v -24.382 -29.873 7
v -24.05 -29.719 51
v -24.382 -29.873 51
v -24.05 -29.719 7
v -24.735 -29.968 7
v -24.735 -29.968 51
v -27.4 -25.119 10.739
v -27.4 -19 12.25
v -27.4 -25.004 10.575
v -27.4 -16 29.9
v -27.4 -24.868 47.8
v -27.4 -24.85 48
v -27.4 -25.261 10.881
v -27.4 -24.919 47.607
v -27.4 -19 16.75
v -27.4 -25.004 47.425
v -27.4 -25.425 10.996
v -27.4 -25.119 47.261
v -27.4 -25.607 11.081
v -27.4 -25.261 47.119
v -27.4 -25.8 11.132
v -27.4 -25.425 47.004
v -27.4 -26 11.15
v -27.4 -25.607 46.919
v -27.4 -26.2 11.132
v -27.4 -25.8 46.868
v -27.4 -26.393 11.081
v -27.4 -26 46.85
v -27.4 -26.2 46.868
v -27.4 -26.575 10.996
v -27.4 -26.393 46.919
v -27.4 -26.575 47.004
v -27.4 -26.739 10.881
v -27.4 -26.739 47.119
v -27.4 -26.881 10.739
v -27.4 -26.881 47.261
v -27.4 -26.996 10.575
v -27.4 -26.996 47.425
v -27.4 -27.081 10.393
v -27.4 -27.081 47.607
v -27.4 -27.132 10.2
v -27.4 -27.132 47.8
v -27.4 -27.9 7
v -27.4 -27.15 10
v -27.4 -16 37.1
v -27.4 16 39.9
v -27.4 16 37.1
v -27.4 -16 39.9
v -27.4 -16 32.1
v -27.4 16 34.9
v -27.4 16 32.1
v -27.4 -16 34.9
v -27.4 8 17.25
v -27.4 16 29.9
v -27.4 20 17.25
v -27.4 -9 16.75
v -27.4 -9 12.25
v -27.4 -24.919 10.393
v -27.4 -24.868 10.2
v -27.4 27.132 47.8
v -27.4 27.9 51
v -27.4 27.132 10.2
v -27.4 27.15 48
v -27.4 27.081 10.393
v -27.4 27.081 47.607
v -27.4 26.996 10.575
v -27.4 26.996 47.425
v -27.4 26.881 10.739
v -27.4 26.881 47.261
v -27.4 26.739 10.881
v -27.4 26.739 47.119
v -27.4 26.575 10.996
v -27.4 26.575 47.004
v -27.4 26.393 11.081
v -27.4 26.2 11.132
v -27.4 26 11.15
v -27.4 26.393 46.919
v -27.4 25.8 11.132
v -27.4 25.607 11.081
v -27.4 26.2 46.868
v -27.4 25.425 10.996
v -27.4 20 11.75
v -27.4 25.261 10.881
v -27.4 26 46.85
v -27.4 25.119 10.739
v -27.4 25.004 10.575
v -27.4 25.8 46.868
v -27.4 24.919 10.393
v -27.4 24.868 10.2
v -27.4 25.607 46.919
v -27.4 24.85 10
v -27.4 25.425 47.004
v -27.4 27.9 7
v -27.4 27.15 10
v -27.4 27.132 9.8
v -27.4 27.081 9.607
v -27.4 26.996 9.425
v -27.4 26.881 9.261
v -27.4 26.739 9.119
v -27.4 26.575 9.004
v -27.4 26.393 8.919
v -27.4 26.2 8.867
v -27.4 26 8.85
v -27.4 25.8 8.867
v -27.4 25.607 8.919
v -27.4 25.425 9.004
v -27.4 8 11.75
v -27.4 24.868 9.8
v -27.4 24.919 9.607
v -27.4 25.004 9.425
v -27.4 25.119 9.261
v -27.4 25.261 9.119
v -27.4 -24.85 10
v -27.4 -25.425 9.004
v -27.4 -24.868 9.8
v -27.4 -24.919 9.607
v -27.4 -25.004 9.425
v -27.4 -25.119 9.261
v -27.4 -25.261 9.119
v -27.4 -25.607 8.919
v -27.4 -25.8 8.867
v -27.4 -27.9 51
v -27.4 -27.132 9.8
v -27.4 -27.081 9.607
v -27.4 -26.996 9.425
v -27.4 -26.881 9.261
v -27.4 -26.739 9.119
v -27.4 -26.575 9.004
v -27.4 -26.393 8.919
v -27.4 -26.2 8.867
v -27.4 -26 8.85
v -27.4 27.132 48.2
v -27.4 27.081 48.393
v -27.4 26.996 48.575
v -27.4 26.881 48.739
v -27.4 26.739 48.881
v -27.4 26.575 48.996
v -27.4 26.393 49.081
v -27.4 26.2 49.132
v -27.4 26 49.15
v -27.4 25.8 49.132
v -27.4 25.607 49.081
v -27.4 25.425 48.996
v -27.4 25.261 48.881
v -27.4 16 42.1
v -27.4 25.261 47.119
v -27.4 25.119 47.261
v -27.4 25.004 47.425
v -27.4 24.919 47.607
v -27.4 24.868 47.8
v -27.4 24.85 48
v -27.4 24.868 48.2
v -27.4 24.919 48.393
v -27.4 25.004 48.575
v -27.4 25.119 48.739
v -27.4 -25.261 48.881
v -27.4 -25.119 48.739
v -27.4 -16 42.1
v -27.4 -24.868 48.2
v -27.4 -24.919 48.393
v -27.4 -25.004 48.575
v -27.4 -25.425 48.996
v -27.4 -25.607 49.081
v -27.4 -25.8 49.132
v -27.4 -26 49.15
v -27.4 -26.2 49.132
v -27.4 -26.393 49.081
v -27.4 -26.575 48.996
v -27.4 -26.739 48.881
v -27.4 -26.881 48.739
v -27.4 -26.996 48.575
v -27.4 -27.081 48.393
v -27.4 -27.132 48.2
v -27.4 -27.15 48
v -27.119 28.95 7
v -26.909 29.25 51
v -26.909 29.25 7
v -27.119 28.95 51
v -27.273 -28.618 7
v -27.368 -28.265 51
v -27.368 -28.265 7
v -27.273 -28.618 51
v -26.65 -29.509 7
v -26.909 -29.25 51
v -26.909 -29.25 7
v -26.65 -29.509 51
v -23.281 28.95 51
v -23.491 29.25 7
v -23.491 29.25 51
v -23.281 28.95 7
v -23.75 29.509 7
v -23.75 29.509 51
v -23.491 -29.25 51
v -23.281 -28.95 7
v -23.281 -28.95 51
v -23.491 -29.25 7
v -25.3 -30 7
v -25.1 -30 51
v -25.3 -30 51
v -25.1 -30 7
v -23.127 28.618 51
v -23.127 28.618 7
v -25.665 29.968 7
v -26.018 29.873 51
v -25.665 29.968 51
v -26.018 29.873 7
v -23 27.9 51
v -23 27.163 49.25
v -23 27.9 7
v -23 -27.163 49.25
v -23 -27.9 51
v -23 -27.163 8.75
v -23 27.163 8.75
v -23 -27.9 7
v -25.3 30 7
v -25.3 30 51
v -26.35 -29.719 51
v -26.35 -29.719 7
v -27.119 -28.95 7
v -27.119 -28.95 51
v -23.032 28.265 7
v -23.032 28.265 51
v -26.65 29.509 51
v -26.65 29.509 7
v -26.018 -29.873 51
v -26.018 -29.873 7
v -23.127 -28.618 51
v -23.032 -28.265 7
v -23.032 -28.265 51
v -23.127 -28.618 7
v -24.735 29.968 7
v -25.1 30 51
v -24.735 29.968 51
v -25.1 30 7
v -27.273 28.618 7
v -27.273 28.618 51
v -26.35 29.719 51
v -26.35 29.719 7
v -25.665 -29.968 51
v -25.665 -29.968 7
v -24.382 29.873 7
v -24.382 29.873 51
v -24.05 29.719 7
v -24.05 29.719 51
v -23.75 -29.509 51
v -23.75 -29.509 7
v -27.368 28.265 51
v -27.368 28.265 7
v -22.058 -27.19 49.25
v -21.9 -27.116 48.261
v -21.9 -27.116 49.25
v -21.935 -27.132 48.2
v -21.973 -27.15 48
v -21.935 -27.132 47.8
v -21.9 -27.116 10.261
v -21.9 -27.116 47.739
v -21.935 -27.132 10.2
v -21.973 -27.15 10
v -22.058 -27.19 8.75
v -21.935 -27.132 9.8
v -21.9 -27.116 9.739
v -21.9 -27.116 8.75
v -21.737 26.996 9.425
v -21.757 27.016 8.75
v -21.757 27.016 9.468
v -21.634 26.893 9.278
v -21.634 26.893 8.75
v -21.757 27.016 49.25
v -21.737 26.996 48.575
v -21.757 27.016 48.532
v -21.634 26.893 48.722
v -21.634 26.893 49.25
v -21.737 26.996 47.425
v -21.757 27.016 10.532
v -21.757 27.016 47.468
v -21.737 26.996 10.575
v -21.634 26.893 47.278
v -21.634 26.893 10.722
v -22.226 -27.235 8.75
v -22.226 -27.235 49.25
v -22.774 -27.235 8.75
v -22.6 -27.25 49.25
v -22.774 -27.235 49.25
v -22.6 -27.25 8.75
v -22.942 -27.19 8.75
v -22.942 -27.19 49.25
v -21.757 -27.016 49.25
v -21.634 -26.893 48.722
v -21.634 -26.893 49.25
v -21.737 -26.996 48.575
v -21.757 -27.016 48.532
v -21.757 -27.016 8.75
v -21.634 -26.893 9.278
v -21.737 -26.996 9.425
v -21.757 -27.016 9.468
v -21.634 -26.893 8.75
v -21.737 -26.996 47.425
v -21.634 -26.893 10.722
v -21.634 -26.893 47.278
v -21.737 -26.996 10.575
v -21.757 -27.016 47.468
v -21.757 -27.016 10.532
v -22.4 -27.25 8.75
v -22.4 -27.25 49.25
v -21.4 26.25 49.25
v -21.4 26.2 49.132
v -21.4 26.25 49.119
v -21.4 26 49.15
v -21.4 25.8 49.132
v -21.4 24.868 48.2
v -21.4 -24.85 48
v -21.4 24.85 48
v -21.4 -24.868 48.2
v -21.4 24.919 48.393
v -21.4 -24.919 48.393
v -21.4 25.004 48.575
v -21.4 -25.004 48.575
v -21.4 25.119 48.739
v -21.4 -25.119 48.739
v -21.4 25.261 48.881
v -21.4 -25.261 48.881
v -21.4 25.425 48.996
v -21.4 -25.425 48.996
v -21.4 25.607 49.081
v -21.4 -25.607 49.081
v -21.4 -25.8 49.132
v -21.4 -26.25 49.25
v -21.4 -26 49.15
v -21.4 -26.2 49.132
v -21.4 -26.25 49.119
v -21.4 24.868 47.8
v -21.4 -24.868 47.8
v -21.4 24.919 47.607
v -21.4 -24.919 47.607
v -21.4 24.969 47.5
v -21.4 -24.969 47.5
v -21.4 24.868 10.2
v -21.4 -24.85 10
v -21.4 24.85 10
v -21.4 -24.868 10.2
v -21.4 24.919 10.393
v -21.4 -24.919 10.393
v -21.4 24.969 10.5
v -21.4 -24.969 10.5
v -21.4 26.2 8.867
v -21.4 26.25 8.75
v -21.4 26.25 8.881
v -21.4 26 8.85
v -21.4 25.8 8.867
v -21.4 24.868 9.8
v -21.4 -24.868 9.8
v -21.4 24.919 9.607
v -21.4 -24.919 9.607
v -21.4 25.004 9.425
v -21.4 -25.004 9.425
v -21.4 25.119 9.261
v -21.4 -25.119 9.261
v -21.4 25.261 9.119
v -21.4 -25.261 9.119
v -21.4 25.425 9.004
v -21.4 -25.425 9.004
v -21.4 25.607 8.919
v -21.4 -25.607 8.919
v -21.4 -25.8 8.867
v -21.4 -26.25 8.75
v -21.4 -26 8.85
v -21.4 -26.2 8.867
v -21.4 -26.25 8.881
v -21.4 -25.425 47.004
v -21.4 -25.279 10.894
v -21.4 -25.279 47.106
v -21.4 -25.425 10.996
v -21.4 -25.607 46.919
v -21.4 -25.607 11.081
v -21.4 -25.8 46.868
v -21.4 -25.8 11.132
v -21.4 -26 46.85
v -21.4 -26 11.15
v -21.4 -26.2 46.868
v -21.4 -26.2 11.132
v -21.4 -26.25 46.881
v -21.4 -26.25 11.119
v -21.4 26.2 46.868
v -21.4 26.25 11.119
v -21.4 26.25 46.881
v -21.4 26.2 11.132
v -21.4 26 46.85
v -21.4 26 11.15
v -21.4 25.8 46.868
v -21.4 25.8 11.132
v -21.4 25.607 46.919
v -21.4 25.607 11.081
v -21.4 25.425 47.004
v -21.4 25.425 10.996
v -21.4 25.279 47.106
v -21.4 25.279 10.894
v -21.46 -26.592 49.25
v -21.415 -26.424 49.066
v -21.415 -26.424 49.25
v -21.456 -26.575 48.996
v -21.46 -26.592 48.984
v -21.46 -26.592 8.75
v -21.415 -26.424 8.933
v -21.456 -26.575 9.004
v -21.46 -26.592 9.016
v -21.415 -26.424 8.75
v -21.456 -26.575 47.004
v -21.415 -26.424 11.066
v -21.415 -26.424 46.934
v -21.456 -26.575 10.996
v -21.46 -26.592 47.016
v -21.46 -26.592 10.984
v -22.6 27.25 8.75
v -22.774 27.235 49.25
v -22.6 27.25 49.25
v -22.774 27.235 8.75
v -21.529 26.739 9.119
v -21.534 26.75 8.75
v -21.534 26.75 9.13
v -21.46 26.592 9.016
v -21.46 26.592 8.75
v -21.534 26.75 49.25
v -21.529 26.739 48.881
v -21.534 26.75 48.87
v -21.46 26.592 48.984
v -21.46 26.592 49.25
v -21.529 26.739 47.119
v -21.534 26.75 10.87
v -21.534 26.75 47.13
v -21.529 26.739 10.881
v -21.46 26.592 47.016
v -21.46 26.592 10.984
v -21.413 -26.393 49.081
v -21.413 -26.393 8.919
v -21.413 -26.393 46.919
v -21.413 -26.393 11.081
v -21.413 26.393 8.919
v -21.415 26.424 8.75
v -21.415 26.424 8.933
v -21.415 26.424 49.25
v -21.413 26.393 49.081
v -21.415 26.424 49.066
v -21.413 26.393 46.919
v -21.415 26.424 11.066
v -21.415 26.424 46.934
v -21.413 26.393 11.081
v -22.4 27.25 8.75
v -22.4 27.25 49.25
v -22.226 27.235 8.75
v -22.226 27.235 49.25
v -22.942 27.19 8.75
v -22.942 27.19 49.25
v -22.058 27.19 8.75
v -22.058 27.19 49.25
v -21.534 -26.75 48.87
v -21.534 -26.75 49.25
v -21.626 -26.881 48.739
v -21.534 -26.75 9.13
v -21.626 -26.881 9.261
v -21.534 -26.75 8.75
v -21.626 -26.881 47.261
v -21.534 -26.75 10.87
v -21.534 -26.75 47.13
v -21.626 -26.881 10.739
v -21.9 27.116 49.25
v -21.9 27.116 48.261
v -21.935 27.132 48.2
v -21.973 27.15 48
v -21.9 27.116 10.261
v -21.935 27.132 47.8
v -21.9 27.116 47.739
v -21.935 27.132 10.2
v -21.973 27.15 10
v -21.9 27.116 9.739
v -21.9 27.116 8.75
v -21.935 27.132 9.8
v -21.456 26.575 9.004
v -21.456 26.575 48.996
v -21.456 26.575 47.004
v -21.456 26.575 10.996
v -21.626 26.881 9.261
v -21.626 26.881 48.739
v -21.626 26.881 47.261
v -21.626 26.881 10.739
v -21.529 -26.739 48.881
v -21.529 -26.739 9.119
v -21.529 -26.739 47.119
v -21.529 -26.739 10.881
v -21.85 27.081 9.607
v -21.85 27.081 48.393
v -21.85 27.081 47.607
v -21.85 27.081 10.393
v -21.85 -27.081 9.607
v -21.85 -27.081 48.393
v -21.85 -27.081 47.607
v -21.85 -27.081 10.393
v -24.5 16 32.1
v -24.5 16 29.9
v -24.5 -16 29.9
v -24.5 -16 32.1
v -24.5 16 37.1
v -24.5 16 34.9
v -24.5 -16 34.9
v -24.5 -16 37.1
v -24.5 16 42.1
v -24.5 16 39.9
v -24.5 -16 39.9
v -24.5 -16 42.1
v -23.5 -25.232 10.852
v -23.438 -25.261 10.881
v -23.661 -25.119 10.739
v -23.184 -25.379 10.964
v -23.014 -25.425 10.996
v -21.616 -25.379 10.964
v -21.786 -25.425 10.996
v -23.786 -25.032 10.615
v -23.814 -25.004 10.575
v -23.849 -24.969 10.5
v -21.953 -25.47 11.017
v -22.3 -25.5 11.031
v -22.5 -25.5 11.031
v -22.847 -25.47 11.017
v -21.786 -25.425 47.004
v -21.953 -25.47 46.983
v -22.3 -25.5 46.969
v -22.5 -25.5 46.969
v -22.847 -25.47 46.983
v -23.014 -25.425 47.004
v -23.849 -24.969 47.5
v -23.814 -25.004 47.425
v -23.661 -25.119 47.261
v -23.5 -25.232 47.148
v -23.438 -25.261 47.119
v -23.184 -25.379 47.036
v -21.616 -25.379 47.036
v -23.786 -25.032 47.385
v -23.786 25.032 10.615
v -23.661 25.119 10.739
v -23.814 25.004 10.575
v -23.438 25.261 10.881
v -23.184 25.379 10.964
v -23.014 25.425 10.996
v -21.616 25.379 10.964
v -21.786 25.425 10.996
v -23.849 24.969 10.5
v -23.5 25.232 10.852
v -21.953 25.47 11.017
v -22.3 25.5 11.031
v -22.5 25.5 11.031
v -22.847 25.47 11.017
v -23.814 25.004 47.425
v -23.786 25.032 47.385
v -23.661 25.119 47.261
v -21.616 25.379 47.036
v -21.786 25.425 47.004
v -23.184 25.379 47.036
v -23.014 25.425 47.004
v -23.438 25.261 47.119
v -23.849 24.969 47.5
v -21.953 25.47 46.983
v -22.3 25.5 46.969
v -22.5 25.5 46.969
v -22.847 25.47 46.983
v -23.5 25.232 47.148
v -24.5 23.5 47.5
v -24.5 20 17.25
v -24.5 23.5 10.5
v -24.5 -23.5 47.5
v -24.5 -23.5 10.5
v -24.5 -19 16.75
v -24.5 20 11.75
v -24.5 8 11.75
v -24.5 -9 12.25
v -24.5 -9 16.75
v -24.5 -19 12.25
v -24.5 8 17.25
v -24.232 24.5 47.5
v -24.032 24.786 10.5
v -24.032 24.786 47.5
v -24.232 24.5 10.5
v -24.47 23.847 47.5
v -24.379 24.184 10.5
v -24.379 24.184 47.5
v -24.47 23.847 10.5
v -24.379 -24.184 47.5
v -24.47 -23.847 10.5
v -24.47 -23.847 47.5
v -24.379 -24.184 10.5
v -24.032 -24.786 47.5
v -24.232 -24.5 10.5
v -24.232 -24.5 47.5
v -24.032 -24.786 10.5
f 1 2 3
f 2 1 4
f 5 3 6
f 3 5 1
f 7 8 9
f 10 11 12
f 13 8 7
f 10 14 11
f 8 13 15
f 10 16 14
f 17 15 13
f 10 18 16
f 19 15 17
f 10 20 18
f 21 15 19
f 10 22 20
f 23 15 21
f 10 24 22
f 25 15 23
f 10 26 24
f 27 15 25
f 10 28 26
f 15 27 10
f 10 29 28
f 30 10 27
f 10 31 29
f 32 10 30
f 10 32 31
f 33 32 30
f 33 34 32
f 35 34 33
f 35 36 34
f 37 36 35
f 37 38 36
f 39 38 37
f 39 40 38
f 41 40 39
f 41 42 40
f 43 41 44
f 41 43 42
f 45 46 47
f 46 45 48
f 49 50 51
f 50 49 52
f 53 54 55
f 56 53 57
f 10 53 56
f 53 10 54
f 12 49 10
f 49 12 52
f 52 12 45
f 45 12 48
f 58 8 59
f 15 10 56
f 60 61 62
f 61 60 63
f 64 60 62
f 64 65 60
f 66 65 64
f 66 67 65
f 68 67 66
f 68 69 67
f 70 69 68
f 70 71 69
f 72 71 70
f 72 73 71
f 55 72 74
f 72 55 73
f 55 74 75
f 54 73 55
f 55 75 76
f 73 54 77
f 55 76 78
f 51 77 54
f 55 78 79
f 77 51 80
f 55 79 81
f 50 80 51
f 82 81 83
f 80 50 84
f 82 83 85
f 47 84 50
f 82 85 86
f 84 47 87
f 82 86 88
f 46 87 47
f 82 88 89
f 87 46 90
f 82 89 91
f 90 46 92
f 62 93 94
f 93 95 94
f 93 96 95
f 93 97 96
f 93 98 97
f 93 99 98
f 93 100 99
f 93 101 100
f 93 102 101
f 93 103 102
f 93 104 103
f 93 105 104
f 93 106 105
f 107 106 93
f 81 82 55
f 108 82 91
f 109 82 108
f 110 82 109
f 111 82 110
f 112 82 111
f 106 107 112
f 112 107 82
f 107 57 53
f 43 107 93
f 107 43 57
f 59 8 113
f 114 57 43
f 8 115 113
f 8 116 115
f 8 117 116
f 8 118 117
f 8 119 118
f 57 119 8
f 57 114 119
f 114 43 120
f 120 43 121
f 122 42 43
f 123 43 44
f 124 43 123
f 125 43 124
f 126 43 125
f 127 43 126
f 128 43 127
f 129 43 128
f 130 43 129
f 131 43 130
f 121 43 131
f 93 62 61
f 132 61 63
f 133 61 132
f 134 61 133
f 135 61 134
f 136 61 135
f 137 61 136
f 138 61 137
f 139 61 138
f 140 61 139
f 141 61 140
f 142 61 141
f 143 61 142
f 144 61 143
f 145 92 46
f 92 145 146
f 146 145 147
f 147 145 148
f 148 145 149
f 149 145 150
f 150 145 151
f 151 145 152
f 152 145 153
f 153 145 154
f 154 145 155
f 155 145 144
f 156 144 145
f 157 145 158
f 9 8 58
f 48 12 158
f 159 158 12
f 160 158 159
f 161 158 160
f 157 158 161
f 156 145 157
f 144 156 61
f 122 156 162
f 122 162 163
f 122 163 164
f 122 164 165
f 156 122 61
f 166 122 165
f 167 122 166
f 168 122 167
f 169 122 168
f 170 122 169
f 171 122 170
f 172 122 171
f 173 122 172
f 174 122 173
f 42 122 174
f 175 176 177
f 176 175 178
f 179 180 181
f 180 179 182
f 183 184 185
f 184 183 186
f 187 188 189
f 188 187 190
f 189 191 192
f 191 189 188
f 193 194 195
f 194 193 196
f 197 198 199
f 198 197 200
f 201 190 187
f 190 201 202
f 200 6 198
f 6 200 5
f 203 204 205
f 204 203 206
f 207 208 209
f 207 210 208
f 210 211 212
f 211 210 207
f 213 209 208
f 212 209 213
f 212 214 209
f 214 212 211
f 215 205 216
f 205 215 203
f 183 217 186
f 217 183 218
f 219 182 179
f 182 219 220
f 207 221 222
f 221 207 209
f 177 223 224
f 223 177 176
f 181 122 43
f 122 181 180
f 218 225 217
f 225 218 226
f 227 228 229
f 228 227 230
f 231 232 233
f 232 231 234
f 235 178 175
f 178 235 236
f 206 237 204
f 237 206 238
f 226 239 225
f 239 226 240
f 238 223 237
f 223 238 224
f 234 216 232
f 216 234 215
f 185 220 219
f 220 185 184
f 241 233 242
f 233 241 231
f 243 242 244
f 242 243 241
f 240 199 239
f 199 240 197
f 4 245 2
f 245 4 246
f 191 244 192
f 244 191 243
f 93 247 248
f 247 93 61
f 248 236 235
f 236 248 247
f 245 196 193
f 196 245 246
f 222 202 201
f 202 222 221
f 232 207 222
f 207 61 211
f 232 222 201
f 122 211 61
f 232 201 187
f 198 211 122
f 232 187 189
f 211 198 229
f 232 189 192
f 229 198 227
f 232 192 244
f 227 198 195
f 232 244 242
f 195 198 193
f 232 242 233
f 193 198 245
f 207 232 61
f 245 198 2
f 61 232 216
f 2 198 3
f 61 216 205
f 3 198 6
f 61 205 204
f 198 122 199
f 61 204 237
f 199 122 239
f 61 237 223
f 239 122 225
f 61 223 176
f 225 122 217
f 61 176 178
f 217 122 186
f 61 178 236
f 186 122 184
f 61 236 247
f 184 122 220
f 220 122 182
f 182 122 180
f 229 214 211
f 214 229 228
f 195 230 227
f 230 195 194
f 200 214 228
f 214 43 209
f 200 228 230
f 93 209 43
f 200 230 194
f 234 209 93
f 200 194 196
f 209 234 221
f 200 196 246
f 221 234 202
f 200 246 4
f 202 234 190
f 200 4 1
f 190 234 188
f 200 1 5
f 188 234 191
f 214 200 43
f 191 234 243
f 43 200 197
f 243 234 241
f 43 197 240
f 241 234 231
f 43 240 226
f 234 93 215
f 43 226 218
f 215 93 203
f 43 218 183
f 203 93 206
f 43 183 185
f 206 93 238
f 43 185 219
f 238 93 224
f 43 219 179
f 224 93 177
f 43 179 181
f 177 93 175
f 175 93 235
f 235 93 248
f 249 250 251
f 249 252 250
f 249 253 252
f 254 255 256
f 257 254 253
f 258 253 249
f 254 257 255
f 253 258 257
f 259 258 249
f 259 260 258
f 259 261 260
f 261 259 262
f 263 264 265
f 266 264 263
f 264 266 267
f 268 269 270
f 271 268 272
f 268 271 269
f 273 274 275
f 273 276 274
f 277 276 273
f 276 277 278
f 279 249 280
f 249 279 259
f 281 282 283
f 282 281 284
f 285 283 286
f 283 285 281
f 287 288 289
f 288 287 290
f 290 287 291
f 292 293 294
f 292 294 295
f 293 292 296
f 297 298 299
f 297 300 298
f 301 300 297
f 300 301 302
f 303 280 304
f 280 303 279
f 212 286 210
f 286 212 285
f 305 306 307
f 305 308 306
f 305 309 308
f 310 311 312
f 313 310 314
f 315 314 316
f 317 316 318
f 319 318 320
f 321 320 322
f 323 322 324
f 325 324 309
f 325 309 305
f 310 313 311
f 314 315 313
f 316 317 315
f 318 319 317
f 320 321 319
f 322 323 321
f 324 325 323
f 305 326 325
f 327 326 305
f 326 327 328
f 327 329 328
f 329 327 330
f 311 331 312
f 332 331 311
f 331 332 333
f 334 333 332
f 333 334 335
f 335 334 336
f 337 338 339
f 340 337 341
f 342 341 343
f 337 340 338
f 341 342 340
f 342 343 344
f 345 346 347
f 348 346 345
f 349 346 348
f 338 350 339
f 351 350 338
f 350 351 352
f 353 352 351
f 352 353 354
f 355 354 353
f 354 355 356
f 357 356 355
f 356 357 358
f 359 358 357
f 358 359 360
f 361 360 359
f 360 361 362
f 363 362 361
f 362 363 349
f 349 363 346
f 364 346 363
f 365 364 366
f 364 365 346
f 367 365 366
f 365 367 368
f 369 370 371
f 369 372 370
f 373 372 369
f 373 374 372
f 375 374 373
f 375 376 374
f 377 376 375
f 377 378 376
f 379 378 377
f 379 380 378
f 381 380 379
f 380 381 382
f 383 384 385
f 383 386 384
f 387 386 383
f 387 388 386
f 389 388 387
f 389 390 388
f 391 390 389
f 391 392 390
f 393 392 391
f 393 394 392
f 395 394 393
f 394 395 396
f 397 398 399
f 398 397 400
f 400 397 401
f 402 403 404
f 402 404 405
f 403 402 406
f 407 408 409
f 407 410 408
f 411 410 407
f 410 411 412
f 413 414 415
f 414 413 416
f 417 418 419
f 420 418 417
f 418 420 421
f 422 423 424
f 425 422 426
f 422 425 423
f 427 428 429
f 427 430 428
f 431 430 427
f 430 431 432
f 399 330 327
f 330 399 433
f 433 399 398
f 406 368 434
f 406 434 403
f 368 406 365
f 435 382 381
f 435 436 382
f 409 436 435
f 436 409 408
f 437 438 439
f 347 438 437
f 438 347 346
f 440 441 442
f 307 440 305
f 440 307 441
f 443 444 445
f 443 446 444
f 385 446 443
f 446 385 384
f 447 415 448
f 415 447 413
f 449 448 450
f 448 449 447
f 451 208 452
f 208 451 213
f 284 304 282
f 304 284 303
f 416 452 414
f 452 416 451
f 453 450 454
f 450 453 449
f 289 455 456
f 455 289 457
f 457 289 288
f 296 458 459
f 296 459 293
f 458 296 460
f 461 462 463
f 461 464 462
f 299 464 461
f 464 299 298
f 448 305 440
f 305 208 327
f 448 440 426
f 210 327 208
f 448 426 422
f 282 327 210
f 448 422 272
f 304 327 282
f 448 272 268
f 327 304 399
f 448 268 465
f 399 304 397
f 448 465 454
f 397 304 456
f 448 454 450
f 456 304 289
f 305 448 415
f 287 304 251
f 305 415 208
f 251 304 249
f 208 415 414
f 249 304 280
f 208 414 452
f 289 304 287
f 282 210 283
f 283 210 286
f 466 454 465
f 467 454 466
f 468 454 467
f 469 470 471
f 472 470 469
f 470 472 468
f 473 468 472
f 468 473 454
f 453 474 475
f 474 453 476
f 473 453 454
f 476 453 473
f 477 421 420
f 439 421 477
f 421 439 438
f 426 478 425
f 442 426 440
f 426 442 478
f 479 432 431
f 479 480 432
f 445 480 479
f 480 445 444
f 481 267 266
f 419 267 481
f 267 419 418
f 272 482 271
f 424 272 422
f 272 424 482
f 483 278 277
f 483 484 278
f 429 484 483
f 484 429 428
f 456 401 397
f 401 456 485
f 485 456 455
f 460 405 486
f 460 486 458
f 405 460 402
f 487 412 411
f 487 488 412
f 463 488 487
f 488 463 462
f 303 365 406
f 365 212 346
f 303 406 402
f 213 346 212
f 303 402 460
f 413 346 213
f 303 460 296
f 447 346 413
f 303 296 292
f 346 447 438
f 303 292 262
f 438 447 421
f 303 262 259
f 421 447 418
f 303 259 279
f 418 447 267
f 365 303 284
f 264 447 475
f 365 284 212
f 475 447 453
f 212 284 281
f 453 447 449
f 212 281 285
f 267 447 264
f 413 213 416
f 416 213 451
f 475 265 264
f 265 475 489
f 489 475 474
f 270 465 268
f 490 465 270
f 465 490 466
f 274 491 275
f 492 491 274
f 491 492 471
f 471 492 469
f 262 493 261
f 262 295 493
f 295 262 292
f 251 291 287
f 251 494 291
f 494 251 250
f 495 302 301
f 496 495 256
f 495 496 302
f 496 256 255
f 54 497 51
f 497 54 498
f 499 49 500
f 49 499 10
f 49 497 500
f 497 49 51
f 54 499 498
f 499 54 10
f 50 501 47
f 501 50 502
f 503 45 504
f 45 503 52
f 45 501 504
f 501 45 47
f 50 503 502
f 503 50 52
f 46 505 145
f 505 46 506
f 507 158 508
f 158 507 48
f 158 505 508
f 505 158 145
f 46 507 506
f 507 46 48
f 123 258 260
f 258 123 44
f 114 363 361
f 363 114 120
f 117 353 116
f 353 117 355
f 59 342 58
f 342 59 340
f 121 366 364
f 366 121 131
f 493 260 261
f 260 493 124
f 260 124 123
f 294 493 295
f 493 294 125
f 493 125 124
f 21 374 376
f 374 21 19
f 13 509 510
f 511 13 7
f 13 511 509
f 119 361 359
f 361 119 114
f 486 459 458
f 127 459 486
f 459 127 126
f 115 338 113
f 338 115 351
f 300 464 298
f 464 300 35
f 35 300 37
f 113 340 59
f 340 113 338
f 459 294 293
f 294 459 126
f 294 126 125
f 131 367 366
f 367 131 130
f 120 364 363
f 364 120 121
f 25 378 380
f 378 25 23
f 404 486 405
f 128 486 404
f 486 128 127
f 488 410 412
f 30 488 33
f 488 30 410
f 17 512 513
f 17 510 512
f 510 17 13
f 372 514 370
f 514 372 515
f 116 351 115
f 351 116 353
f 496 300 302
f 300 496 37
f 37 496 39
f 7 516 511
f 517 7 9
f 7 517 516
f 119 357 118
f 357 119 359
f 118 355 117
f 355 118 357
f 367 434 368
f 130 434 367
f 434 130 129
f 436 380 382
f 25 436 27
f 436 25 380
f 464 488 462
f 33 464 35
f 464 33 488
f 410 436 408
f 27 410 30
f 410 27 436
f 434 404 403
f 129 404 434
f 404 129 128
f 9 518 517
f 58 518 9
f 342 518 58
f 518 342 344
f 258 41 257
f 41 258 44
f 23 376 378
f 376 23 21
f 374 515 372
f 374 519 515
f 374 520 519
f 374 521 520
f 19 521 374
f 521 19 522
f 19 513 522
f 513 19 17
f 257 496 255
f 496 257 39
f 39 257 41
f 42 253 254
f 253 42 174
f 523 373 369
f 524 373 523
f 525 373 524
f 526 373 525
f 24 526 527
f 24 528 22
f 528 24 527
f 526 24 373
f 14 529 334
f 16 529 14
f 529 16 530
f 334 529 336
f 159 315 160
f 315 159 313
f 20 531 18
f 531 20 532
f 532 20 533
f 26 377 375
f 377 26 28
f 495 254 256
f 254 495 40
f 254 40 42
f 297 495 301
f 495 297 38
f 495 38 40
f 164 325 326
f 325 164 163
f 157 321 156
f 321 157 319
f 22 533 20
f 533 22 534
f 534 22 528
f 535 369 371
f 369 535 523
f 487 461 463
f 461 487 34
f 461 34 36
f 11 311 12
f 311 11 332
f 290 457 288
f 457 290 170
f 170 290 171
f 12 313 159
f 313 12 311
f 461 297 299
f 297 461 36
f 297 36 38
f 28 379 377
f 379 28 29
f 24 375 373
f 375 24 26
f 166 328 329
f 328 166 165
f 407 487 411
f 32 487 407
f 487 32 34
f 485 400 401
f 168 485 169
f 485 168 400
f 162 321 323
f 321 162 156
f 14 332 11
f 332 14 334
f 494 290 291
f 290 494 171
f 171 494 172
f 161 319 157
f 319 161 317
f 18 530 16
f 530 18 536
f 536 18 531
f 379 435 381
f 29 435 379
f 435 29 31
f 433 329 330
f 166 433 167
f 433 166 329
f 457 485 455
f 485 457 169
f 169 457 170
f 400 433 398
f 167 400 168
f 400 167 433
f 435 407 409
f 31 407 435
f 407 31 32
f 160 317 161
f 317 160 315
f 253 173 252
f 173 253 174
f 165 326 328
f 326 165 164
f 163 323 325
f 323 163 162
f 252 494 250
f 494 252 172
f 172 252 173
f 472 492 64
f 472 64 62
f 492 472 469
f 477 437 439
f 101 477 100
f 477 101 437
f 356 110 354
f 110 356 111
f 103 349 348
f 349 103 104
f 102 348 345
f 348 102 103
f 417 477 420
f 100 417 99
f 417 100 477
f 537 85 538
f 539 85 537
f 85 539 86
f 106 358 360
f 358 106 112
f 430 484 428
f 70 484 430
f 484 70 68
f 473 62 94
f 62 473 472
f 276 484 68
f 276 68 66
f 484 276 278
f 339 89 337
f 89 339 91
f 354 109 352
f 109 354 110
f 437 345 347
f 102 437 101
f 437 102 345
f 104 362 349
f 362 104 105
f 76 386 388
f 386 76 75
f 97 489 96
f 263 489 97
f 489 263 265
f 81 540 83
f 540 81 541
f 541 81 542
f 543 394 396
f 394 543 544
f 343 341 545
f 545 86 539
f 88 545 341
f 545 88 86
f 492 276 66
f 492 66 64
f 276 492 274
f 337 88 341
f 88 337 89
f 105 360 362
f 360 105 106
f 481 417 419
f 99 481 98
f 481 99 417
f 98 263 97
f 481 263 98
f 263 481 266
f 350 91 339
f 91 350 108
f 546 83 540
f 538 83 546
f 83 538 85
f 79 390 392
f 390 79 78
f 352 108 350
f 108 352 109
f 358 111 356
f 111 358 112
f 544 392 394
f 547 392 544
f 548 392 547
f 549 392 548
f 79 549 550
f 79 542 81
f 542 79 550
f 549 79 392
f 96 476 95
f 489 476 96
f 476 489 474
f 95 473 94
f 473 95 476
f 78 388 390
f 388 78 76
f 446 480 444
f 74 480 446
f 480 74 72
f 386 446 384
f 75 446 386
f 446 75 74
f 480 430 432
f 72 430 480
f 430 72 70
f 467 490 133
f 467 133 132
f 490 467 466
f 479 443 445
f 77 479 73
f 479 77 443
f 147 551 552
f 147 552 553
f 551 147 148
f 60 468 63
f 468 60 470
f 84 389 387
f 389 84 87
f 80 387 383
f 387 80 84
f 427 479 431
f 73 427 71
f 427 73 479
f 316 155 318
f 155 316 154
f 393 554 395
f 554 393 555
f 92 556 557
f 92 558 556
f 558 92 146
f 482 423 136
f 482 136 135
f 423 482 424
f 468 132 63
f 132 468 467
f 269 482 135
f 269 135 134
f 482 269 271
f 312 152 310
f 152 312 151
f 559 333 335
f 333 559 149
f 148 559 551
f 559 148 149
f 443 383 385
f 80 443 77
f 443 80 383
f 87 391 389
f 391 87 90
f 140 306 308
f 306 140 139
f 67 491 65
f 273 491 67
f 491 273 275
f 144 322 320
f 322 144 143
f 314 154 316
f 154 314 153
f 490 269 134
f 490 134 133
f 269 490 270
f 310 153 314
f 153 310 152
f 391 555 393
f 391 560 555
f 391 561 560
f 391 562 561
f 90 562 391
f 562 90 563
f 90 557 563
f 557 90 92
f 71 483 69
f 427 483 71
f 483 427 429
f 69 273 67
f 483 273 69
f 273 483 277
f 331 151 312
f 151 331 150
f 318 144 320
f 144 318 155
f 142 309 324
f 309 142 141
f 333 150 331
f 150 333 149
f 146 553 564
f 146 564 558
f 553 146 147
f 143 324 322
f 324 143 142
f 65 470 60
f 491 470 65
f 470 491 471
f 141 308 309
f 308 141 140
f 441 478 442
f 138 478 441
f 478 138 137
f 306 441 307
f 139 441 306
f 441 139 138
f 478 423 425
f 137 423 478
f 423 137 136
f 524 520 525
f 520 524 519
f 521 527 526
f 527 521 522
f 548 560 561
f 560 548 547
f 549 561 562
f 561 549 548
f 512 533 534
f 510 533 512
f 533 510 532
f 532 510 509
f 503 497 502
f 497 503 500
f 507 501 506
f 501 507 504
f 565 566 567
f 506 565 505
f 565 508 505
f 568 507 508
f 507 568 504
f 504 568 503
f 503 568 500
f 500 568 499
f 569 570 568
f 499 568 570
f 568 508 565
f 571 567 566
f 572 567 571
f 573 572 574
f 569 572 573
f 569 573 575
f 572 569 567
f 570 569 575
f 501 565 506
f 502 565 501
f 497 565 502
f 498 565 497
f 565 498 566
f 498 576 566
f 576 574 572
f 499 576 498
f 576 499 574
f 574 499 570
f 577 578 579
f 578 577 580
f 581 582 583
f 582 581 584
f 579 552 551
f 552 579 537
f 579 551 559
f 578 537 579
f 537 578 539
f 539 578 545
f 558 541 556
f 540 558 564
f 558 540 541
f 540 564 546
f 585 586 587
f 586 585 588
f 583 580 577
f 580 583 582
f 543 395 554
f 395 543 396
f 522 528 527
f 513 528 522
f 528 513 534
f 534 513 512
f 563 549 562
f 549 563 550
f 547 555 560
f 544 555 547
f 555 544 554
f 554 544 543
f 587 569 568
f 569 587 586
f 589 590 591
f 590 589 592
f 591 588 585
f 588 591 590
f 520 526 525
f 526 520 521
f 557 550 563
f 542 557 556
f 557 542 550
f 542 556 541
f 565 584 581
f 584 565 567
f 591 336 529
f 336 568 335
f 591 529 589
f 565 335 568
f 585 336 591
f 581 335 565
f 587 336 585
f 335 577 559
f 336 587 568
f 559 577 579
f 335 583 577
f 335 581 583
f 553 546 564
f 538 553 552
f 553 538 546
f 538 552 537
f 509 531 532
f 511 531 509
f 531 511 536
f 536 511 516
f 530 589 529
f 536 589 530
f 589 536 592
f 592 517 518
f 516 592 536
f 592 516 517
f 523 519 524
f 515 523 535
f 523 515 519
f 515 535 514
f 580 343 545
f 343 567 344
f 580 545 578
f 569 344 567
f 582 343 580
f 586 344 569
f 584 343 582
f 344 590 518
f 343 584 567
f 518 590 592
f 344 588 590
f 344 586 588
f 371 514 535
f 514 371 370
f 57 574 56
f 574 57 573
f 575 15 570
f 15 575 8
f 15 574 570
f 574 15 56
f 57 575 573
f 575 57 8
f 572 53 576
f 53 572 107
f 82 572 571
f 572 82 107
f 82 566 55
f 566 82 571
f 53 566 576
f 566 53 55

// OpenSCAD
// file: ../rnv1_params.scad
// RNV1 (Robotic Neural Vector 1) - Master Parametric Mechanical Specification
// Units: millimeters (mm)
// Coordinate Frame: +X Forward, +Y Left, +Z Up (Standing Neutral Pose, Floor = Z=0)

$fn = 36;

// --- FDM 3D Print Engineering Tolerances (0.4mm nozzle, PETG / PLA+) ---
WALL_T       = 2.0;    // Primary structural wall thickness (>= 1.6mm requirement)
RIB_T        = 1.8;    // Structural stiffening rib thickness
CLEARANCE    = 0.25;   // Standard FDM press/slip fit clearance
M2_PILOT_D   = 1.75;   // M2 self-tapping pilot hole diameter
M2_CLEAR_D   = 2.3;    // M2 through clearance hole diameter
PIVOT_BOSS_D = 4.0;    // Dual-shear opposing coaxial pivot pin diameter

// --- MG90S Metal-Gear Micro Servo Envelope (TowerPro/Generic standard) ---
MG90S_L      = 22.8;   // Body length along flange axis
MG90S_W      = 12.2;   // Body width
MG90S_H      = 28.5;   // Total housing height (bottom to top gear dome)
MG90S_FLANGE_L = 32.2; // Mounting ear span
MG90S_HOLE_DX  = 27.6; // Mounting hole center-to-center
MG90S_SHAFT_OFF = 5.9; // Output shaft offset from end of 22.8mm body

// --- SG90 9g Micro Servo Envelope ---
SG90_L       = 22.5;
SG90_W       = 12.0;
SG90_H       = 22.5;

// --- Master Kinematic Skeleton Coordinates (mm, Z from Floor = 0) ---
SOLE_PAD_H   = 2.0;    // 2mm silicone anti-slip pad (1mm recessed)
FOOT_L       = 72.0;   // X: -32mm heel to +40mm toe
FOOT_HEEL_X  = -32.0;
FOOT_TOE_X   = 40.0;
FOOT_W       = 46.0;   // Y width per foot
FOOT_PLATE_H = 6.5;    // Rigid foot sole plate thickness

FOOT_Y_CTR   = 26.0;   // Left=+26mm, Right=-26mm (6mm gap between inner edges!)
HIP_ROLL_Y   = 23.0;   // Left=+23mm, Right=-23mm

Z_ANKLE_ROLL = 18.0;   // Ankle roll axis height
Z_KNEE_PITCH = 62.0;   // Knee pitch axis height  (L_shin = 44.0mm)
Z_HIP_PITCH  = 106.0;  // Hip pitch axis height   (L_thigh = 44.0mm)
Z_HIP_ROLL   = 124.0;  // Hip roll axis height    (dZ = 18.0mm)

L_SHIN       = Z_KNEE_PITCH - Z_ANKLE_ROLL; // 44.0 mm
L_THIGH      = Z_HIP_PITCH - Z_KNEE_PITCH;  // 44.0 mm
L_HIP_CLEVIS = Z_HIP_ROLL - Z_HIP_PITCH;    // 18.0 mm

// --- Torso & Pelvis Envelope ---
TORSO_Z_BOT  = 116.0;
TORSO_Z_TOP  = 184.0;
TORSO_H      = TORSO_Z_TOP - TORSO_Z_BOT;   // 68.0 mm
TORSO_W      = 80.0;   // Y: -40 to +40mm
TORSO_D      = 54.0;   // X: -27 to +27mm

// --- Arms ---
SHOULDER_Y   = 46.0;   // Left=+46mm, Right=-46mm
SHOULDER_Z   = 170.0;
ARM_LEN      = 72.0;   // Shoulder to palm tip

// --- 2-DOF Active Spatial Head ---
Z_HEAD_YAW   = 188.0;  // Pan axis Z
Z_HEAD_PITCH = 204.0;  // Tilt axis Z
HEAD_W       = 58.0;   // Y width
HEAD_D       = 44.0;   // X depth
HEAD_H       = 42.0;   // Z height (Z = 196..238mm -> Total Robot Height = 238mm)
HEAD_Z_CTR   = 217.0;

// --- Utility Rounded Box Module ---
module rbox(size, r=2.0, center=true) {
    sx = size[0]; sy = size[1]; sz = size[2];
    rc = min(r, sx/2 - 0.1, sy/2 - 0.1, sz/2 - 0.1);
    translate(center ? [0,0,0] : [sx/2, sy/2, sz/2])
    hull() {
        for (dx = [-sx/2 + rc, sx/2 - rc])
        for (dy = [-sy/2 + rc, sy/2 - rc])
        for (dz = [-sz/2 + rc, sz/2 - rc])
            translate([dx, dy, dz]) sphere(r=rc, $fn=16);
    }
}

module rbox_xy(size, r=2.5, center=true) {
    sx = size[0]; sy = size[1]; sz = size[2];
    rc = min(r, sx/2 - 0.1, sy/2 - 0.1);
    translate(center ? [0,0,0] : [sx/2, sy/2, sz/2])
    linear_extrude(height=sz, center=true)
    offset(r=rc) offset(r=-rc)
        square([sx, sy], center=true);
}
// main file
// RNV1 Part: Thin-Wall Ventilated Rear Service Cover (2.0mm shell, ~5.5g)
include <../rnv1_params.scad>

module torso_back_cover() {
    difference() {
        union() {
            translate([-25.2, 0, 29.0])
                rbox_xy([4.4, 60.0, 44.0], r=4.5, center=true);
            translate([-22.5, 0, 29.0])
                rbox_xy([2.2, 54.5, 40.5], r=2.8, center=true);
        }
        // Hollow thin-wall interior (leaves 2.0mm backplate)
        translate([-22.4, 0, 29.0])
            rbox_xy([4.2, 51.0, 37.0], r=2.2, center=true);

        // USB-C 2S Charging Port Cutout
        translate([-27.0, -14.0, 14.5])
            rbox_xy([8.0, 10.0, 4.5], r=1.5, center=true);

        // Main 6A Power Slide Switch Cutout
        translate([-27.0, 14.0, 14.5])
            rbox_xy([8.0, 12.0, 5.5], r=1.0, center=true);

        // Convective Cooling Louver Vents
        for (dz = [31, 36, 41]) {
            translate([-27.0, 0, dz])
                rbox_xy([8.0, 32.0, 2.2], r=0.8, center=true);
        }

        // 4x M2 Mounting Clearance Holes
        for (sy = [-26.0, 26.0])
        for (dz = [10.0, 48.0]) {
            translate([-25.0, sy, dz])
                rotate([0, 90, 0])
                    cylinder(d=M2_CLEAR_D, h=12.0, center=true);
        }
    }
}

torso_back_cover();
